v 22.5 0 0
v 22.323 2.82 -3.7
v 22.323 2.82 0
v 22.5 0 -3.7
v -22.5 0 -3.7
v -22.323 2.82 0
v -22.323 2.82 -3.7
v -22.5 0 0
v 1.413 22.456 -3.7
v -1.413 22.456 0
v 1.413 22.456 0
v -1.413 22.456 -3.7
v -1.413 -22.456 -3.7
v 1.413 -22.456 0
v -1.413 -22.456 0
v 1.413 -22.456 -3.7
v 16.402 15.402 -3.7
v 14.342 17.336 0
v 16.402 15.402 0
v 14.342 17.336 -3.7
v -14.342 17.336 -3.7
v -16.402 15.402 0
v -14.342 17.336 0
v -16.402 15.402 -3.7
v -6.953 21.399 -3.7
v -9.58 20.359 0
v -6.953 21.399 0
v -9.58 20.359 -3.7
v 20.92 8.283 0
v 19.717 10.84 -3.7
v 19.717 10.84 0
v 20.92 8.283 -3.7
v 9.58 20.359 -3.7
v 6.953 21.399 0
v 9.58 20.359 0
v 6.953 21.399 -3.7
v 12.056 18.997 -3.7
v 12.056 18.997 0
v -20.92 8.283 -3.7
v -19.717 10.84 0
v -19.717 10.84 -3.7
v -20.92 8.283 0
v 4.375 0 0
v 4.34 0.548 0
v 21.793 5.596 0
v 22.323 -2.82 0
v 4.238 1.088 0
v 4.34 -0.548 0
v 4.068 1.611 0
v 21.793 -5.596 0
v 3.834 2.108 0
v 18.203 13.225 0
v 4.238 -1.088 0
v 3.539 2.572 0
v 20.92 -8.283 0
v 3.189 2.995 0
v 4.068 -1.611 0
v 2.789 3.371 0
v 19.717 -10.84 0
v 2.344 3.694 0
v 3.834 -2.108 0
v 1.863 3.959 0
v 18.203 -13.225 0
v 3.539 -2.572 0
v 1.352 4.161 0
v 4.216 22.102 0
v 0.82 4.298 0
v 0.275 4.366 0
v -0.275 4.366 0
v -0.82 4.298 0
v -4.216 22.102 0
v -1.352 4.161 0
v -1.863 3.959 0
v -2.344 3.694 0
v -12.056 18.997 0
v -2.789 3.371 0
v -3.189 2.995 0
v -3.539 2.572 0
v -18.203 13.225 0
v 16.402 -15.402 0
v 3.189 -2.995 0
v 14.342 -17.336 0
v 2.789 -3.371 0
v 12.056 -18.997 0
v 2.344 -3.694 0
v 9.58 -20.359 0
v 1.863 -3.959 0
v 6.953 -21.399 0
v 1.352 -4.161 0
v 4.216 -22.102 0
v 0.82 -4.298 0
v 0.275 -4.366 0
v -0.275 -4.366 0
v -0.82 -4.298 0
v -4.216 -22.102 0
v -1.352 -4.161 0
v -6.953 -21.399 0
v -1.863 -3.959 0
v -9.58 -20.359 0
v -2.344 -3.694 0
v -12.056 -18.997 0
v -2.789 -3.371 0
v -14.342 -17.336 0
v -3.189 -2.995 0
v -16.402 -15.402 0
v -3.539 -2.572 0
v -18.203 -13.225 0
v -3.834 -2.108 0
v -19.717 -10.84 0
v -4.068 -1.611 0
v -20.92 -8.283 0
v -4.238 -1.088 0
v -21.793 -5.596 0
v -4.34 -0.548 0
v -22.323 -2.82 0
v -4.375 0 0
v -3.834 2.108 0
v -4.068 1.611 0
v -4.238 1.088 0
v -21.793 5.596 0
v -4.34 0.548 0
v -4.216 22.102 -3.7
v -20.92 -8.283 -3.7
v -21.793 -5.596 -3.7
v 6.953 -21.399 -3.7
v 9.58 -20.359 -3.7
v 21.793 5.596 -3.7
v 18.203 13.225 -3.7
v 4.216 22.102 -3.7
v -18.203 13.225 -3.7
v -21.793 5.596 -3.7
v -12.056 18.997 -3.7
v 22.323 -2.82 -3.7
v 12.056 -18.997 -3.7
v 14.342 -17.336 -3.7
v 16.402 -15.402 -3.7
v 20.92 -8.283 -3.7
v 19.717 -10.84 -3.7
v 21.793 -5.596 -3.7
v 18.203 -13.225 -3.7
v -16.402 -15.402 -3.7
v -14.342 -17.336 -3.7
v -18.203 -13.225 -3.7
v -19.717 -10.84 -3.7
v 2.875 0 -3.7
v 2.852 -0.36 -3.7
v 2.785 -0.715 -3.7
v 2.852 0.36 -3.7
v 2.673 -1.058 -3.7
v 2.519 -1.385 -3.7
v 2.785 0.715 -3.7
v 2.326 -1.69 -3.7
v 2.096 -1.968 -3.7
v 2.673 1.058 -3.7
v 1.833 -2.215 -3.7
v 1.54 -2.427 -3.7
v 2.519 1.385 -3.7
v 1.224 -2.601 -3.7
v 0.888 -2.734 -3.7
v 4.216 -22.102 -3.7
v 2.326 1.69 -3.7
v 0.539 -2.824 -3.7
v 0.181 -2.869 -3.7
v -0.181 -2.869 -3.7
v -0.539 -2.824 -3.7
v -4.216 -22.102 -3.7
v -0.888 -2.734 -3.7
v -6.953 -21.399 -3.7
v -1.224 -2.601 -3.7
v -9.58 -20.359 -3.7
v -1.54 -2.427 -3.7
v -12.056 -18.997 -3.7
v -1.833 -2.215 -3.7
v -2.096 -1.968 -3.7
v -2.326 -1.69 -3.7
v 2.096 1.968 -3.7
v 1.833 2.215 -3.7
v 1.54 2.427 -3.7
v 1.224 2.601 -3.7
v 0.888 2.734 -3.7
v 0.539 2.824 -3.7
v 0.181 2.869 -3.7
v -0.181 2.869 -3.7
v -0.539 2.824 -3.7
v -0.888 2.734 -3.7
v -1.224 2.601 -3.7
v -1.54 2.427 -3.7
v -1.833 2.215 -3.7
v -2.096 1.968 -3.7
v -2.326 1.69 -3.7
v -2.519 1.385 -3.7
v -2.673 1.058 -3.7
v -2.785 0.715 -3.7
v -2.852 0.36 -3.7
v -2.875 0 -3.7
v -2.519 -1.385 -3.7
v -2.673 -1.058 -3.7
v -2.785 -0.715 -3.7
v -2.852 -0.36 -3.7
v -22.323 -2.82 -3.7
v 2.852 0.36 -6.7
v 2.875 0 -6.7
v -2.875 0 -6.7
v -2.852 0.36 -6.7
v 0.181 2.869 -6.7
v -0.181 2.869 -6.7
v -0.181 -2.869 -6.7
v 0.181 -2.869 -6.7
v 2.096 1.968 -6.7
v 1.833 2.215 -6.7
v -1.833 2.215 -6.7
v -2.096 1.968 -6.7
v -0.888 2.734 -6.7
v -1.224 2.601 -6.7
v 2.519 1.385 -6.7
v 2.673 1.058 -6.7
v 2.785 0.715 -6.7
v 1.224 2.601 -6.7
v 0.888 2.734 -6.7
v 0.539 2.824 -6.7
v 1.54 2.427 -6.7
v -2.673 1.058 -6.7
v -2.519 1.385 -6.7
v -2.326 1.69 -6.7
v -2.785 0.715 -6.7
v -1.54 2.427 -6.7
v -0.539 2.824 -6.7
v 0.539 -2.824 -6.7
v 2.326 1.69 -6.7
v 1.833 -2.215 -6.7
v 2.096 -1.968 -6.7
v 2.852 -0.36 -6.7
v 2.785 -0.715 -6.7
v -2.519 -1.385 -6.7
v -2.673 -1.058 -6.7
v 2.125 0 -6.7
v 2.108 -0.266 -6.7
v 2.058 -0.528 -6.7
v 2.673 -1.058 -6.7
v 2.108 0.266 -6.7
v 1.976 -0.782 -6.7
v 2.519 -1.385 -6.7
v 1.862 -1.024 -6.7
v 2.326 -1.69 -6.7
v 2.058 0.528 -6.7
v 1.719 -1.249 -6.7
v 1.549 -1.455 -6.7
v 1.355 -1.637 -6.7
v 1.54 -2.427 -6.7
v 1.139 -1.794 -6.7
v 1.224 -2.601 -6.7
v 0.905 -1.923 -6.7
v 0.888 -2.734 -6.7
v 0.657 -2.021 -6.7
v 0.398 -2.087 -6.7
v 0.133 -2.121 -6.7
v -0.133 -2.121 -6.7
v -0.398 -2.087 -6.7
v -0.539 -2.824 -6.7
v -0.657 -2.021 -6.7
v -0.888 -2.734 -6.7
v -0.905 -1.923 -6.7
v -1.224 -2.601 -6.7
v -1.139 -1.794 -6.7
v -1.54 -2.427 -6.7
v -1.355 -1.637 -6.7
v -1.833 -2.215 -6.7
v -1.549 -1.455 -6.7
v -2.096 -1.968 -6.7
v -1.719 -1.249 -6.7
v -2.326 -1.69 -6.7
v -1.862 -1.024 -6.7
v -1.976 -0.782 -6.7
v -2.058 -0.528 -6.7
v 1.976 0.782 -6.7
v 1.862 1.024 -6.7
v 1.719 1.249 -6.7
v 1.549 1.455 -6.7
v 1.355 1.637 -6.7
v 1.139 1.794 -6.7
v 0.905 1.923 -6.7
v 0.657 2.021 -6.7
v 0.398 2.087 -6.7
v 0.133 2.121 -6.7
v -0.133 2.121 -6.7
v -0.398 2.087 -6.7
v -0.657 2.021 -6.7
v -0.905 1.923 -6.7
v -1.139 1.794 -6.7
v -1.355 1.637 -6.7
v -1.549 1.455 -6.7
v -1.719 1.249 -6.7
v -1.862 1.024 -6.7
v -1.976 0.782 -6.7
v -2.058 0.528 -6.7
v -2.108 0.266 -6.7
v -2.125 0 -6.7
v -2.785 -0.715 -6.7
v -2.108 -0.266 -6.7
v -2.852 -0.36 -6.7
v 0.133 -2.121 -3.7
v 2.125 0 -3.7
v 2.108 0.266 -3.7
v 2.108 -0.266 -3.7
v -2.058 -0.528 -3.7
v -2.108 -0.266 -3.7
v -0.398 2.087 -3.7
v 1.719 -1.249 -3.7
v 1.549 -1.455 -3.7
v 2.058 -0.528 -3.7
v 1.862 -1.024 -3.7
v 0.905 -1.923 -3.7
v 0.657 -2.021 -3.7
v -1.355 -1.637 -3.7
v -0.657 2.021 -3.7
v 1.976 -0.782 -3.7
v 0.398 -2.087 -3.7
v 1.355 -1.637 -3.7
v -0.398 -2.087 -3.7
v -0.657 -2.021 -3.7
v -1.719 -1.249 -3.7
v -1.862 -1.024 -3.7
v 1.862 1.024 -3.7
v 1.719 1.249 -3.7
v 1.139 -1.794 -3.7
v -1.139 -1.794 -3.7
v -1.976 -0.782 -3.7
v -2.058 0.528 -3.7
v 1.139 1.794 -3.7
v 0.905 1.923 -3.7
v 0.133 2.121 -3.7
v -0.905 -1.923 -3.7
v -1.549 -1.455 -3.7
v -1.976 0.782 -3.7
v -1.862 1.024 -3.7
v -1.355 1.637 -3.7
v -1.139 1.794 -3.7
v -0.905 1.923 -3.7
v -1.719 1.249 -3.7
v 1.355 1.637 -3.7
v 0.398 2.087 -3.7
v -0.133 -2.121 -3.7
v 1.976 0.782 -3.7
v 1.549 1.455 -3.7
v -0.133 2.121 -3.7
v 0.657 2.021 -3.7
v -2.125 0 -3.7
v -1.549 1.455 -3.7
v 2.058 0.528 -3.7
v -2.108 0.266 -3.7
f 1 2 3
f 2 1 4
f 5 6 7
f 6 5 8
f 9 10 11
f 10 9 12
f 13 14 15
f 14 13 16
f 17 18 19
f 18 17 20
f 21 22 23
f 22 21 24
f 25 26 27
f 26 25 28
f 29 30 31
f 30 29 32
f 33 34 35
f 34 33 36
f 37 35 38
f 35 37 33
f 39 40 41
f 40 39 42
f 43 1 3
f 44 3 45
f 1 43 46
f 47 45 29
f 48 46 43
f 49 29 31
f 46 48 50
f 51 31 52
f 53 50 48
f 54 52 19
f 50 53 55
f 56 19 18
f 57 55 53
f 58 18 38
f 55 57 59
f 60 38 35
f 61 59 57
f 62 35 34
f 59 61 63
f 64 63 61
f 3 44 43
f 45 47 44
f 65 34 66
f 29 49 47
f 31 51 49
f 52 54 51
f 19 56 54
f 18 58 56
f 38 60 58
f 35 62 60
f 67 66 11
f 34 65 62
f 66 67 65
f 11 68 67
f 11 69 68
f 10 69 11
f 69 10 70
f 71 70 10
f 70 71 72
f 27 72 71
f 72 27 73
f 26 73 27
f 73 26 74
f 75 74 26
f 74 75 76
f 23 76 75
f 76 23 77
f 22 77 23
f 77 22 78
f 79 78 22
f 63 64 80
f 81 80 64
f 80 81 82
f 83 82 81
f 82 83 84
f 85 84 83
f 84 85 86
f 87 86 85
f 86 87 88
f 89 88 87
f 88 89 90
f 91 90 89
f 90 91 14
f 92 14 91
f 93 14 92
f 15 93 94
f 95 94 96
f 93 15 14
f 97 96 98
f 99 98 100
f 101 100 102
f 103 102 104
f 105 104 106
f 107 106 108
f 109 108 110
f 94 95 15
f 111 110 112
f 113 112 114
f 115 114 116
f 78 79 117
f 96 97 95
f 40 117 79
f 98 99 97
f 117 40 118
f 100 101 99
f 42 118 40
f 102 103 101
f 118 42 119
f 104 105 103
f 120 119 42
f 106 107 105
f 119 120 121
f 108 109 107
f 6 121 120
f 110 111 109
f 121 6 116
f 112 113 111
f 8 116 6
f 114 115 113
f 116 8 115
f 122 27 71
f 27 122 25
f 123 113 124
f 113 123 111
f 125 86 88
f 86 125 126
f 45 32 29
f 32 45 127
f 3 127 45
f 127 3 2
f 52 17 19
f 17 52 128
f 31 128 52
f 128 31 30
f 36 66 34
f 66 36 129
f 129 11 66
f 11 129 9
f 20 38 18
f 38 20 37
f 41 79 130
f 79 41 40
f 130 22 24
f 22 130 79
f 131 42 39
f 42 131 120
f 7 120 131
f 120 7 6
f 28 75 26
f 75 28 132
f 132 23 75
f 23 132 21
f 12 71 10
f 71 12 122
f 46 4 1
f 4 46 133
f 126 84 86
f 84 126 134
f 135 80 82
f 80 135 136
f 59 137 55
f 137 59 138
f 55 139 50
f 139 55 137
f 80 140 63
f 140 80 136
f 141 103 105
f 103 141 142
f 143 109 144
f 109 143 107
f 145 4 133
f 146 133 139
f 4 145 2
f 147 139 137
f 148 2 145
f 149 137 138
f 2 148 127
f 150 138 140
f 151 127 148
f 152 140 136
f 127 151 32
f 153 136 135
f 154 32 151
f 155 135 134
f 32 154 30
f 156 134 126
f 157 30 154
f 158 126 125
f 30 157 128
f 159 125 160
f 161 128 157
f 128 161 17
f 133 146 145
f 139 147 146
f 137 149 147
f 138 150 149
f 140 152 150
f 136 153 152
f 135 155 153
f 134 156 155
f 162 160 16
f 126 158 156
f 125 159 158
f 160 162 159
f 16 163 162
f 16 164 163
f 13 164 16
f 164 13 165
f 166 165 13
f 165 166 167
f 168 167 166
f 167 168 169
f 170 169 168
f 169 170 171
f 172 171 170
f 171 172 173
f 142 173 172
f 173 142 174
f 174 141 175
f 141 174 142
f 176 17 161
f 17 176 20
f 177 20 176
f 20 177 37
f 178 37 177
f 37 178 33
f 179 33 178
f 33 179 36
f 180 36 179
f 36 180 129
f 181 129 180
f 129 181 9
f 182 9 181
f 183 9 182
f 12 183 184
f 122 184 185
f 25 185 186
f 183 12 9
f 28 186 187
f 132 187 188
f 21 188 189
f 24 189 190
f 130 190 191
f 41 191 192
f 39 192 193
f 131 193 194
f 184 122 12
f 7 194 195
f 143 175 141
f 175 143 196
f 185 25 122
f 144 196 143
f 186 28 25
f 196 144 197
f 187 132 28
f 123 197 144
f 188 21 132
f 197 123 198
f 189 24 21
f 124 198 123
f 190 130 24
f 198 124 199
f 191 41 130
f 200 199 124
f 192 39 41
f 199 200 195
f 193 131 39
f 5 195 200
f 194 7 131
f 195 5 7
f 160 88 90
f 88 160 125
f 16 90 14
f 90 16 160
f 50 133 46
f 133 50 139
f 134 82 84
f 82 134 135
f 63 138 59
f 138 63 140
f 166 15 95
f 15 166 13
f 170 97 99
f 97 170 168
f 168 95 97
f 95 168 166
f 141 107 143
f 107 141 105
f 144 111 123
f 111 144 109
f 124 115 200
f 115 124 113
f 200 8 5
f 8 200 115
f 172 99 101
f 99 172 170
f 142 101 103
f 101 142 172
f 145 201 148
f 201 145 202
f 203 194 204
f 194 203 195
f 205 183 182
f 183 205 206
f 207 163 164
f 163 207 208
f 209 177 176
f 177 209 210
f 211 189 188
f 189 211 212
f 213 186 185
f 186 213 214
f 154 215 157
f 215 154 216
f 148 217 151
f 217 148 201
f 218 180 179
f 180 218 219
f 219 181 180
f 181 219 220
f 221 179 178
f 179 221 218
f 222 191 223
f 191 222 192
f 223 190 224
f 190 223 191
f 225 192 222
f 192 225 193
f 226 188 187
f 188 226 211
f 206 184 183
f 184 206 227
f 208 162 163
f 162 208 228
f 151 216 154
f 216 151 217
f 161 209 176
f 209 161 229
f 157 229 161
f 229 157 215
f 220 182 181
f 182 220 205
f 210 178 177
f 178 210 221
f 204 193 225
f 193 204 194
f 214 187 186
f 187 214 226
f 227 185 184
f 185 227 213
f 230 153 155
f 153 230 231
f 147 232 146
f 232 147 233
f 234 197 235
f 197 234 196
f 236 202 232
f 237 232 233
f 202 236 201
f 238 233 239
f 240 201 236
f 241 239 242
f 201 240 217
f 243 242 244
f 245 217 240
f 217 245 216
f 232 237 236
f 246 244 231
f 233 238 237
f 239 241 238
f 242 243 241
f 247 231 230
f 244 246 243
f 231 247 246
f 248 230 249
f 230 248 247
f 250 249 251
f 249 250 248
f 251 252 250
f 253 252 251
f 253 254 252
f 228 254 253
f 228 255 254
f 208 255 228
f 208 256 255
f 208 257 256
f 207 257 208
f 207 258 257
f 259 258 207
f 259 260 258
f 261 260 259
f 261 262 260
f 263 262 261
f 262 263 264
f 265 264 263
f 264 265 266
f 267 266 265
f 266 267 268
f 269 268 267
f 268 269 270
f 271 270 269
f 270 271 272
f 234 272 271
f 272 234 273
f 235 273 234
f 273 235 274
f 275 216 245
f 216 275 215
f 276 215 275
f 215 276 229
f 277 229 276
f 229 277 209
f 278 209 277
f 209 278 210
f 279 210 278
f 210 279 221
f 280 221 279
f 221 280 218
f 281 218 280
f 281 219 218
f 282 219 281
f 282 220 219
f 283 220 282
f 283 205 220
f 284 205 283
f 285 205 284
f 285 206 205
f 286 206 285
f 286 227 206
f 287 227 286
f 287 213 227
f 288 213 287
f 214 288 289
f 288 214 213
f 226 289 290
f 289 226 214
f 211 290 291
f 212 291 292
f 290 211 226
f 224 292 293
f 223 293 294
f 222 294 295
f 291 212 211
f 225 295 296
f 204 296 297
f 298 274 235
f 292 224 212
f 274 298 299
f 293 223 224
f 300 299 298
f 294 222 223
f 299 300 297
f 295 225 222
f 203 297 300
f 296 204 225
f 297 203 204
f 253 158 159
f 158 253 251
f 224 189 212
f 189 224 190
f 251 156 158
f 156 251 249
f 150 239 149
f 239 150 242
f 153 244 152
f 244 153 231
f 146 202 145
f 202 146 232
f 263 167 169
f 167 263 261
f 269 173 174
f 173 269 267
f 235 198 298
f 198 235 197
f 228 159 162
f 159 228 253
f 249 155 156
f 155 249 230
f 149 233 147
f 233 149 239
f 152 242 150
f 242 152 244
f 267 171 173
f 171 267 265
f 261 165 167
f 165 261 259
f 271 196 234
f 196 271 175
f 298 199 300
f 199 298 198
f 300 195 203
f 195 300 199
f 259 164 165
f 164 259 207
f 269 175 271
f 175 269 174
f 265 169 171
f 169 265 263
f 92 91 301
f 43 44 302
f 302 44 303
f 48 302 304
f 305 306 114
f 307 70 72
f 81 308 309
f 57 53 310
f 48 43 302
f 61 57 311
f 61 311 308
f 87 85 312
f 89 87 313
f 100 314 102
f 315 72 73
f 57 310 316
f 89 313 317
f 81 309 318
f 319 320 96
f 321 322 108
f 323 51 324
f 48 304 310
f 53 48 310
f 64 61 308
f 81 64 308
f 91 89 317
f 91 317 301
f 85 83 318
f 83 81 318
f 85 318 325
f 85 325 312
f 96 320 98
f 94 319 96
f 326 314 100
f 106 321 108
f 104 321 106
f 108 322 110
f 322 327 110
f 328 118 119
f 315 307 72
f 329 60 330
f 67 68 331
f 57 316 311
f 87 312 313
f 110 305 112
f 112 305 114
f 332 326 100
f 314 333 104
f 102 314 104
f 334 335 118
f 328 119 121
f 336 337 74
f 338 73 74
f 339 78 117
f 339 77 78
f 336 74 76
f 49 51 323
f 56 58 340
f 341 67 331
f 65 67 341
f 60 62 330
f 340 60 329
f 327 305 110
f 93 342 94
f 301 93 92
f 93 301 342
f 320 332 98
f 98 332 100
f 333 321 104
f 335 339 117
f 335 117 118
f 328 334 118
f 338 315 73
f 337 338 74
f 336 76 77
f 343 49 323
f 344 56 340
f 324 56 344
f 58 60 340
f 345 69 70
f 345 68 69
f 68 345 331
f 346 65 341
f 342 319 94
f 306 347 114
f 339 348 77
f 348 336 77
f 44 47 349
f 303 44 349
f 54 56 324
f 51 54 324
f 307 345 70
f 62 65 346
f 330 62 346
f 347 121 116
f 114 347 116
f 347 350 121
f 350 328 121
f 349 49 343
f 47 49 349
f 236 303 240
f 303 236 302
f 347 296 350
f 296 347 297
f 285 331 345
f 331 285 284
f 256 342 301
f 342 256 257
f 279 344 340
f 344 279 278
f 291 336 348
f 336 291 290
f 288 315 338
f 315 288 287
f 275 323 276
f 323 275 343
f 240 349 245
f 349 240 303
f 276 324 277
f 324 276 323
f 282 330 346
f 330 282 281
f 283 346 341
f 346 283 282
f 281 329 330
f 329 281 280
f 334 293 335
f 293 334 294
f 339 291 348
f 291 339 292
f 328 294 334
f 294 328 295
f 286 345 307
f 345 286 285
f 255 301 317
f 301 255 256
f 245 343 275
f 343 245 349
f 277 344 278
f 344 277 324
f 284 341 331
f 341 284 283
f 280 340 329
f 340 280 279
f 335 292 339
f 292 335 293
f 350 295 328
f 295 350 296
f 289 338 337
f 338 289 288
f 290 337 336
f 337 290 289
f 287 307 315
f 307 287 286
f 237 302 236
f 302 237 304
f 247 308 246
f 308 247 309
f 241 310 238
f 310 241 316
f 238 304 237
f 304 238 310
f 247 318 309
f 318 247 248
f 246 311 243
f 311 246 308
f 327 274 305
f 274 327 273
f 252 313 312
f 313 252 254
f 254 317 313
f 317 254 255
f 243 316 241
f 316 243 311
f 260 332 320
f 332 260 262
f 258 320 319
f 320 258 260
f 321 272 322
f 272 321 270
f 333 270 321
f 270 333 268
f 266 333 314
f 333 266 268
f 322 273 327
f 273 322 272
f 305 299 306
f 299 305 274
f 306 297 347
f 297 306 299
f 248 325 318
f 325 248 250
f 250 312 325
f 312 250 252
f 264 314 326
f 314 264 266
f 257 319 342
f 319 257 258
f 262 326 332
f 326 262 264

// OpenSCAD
$fn = 50;


difference() {
	union() {
		translate(v = [0, 0, -3.7000000000]) {
			cylinder(h = 3.7000000000, r = 22.5000000000);
		}
		translate(v = [0, 0, -6.7000000000]) {
			cylinder(h = 6.7000000000, r = 2.8750000000);
		}
	}
	union() {
		translate(v = [0, 0, 0]) {
			rotate(a = [0, 0, 0]) {
				difference() {
					union() {
						translate(v = [0, 0, -6.7000000000]) {
							cylinder(h = 6.7000000000, r = 2.0000000000);
						}
						translate(v = [0, 0, -3.7000000000]) {
							cylinder(h = 3.7000000000, r1 = 2.1250000000, r2 = 4.3750000000);
						}
						translate(v = [0, 0, -6.7000000000]) {
							cylinder(h = 6.7000000000, r = 2.1250000000);
						}
						translate(v = [0, 0, -6.7000000000]) {
							cylinder(h = 6.7000000000, r = 2.0000000000);
						}
					}
					union();
				}
			}
		}
	}
}
